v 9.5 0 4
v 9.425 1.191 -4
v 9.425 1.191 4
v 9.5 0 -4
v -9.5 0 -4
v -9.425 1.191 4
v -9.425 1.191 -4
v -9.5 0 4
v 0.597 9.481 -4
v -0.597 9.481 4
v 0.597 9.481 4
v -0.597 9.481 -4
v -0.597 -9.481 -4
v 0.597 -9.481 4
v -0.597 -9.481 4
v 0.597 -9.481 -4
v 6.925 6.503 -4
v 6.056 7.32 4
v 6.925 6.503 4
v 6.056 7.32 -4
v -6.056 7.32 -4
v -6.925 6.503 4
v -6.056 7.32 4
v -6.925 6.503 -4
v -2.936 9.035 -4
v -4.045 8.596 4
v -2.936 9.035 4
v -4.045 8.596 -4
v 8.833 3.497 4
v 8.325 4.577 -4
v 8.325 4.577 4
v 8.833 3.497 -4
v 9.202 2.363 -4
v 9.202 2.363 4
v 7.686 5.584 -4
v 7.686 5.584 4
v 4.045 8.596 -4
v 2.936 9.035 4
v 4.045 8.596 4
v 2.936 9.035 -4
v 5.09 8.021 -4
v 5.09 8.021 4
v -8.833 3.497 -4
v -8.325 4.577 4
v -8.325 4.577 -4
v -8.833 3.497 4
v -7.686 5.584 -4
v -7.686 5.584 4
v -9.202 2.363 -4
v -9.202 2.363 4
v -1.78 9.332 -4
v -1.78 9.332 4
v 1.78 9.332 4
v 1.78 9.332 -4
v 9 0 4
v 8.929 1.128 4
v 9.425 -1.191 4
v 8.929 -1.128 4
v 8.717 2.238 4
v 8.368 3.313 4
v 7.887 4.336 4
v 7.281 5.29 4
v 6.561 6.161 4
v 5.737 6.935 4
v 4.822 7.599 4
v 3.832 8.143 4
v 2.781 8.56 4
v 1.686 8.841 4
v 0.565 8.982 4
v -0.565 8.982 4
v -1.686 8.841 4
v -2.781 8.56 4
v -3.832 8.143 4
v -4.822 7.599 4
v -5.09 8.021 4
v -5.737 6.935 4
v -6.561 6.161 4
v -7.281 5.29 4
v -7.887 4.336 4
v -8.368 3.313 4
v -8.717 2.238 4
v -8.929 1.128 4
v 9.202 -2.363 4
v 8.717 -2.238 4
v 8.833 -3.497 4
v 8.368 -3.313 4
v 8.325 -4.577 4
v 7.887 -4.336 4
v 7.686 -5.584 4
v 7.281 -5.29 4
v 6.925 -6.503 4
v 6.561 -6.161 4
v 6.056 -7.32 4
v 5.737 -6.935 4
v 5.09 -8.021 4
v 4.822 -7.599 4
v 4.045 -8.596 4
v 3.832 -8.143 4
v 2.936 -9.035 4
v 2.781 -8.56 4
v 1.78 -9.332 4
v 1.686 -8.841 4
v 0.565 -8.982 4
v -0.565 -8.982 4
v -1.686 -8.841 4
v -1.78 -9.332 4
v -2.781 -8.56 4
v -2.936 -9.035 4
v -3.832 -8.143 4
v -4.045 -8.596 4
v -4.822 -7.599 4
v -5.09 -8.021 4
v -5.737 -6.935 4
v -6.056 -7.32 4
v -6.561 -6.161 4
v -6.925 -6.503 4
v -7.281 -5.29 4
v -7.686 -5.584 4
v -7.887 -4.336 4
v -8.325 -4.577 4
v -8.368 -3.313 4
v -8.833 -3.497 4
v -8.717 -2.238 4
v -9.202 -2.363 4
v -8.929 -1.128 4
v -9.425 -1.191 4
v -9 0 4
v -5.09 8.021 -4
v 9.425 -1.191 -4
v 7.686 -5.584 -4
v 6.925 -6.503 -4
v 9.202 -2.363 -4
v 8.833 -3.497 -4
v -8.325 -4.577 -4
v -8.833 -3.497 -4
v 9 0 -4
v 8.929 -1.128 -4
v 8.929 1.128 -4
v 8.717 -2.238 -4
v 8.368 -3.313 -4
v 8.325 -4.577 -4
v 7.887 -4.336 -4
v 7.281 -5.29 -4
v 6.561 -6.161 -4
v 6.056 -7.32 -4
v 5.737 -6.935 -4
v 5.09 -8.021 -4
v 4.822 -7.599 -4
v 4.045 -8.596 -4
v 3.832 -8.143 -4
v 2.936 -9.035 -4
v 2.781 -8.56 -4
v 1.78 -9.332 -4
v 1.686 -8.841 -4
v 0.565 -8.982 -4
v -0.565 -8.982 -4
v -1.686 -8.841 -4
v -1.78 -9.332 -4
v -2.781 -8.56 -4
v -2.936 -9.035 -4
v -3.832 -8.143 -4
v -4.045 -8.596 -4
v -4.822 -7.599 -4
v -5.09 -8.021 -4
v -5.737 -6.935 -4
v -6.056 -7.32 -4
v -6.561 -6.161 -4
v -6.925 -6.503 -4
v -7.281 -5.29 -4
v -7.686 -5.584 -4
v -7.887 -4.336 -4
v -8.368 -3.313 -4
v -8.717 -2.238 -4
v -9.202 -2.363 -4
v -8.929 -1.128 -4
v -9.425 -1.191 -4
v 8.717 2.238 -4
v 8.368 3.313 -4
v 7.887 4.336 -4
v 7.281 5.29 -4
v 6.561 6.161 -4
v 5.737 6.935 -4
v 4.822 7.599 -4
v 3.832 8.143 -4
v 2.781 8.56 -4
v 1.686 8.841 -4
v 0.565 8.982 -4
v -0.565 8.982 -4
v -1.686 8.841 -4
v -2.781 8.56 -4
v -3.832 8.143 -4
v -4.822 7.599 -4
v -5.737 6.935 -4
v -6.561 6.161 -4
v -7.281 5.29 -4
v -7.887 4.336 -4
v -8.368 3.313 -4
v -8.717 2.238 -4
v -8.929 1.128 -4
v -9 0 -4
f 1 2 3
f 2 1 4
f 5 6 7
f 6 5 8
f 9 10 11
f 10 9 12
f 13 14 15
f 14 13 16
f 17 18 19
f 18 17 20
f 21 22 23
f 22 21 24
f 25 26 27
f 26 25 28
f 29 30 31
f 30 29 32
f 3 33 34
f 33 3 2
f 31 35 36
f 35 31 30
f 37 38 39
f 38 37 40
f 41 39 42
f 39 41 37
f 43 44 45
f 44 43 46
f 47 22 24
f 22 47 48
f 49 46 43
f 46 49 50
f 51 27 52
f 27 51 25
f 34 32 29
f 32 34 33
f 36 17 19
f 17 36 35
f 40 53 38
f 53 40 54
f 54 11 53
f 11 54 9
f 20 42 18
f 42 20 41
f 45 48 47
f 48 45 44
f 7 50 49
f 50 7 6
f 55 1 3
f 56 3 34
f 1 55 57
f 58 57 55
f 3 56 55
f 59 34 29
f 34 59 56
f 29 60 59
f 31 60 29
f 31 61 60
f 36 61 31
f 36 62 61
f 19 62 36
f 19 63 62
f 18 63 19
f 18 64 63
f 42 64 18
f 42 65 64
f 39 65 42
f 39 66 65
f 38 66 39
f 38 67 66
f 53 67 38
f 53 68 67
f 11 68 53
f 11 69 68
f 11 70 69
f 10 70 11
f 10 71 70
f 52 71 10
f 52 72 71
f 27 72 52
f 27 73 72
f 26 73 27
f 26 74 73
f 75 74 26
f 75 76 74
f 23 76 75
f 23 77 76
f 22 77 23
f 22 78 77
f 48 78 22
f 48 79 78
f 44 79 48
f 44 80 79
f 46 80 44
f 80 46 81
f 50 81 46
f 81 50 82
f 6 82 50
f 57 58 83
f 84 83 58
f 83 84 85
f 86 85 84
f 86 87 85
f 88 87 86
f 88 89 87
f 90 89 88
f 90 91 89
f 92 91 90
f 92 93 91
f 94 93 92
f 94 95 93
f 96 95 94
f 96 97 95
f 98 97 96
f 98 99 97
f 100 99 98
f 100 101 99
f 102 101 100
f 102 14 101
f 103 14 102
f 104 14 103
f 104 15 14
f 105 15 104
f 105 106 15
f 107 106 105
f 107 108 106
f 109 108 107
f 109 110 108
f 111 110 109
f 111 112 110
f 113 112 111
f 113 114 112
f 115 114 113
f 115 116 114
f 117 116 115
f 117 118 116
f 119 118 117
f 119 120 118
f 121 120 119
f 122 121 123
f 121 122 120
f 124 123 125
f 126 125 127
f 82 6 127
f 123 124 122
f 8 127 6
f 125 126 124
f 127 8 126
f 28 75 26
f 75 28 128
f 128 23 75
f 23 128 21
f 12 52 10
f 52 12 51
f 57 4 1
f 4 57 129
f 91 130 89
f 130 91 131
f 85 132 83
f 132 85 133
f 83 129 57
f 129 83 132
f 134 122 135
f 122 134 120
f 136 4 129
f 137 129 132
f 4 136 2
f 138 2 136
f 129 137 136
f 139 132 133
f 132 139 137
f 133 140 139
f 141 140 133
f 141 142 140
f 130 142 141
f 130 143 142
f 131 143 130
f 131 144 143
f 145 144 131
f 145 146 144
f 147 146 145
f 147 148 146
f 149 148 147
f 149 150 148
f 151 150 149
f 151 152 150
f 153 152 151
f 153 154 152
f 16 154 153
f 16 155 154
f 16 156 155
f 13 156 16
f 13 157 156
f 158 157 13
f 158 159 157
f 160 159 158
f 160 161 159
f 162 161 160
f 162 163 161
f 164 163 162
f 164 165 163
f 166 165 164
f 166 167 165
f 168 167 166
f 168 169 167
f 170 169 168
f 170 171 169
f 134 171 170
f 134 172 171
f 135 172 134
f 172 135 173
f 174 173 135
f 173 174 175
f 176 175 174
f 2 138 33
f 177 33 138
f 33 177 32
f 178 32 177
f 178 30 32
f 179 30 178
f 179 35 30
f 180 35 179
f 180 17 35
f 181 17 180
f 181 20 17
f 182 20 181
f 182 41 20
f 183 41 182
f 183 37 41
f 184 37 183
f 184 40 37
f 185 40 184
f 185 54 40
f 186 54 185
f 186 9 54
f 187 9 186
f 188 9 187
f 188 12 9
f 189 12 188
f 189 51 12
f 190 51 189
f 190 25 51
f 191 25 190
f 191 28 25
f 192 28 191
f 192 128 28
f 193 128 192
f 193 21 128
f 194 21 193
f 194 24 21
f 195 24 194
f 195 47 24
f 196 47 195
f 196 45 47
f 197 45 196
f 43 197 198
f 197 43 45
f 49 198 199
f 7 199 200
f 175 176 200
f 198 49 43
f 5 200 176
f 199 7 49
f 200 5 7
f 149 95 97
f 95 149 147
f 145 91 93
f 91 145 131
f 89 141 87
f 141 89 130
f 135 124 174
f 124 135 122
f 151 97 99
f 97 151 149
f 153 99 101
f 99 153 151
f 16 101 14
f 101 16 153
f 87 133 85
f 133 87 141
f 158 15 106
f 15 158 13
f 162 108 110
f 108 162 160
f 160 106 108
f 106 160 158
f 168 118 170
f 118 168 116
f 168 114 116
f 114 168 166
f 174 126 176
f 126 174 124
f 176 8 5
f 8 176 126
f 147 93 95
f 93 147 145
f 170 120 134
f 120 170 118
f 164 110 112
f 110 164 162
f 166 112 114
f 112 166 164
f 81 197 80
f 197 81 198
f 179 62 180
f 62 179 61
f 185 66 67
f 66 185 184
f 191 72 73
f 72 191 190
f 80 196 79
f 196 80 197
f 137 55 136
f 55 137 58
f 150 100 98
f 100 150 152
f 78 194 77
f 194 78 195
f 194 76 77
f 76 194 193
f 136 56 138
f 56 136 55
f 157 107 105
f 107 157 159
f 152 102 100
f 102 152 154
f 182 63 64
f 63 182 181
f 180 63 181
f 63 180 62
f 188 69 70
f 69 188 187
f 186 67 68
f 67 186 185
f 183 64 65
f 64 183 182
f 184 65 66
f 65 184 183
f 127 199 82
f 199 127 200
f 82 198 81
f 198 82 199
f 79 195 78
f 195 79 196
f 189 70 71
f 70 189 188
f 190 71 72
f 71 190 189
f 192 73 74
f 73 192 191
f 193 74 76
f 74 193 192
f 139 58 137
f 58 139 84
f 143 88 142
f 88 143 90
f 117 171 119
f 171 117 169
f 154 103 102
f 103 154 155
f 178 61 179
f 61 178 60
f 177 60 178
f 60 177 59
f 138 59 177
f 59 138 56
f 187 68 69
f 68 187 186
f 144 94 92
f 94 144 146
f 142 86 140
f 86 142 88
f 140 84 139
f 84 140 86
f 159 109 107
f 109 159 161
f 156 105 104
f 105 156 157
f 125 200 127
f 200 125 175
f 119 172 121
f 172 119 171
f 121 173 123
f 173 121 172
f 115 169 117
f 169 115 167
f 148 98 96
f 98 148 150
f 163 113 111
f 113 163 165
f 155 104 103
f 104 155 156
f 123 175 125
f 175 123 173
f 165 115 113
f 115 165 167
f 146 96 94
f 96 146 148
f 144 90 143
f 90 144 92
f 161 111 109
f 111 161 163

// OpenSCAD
$fn = 50;


difference() {
	union() {
		translate(v = [0, 0, -4.0000000000]) {
			cylinder(h = 8, r = 9.5000000000);
		}
	}
	union() {
		translate(v = [0, 0, -100.0000000000]) {
			cylinder(h = 200, r = 9);
		}
	}
}
